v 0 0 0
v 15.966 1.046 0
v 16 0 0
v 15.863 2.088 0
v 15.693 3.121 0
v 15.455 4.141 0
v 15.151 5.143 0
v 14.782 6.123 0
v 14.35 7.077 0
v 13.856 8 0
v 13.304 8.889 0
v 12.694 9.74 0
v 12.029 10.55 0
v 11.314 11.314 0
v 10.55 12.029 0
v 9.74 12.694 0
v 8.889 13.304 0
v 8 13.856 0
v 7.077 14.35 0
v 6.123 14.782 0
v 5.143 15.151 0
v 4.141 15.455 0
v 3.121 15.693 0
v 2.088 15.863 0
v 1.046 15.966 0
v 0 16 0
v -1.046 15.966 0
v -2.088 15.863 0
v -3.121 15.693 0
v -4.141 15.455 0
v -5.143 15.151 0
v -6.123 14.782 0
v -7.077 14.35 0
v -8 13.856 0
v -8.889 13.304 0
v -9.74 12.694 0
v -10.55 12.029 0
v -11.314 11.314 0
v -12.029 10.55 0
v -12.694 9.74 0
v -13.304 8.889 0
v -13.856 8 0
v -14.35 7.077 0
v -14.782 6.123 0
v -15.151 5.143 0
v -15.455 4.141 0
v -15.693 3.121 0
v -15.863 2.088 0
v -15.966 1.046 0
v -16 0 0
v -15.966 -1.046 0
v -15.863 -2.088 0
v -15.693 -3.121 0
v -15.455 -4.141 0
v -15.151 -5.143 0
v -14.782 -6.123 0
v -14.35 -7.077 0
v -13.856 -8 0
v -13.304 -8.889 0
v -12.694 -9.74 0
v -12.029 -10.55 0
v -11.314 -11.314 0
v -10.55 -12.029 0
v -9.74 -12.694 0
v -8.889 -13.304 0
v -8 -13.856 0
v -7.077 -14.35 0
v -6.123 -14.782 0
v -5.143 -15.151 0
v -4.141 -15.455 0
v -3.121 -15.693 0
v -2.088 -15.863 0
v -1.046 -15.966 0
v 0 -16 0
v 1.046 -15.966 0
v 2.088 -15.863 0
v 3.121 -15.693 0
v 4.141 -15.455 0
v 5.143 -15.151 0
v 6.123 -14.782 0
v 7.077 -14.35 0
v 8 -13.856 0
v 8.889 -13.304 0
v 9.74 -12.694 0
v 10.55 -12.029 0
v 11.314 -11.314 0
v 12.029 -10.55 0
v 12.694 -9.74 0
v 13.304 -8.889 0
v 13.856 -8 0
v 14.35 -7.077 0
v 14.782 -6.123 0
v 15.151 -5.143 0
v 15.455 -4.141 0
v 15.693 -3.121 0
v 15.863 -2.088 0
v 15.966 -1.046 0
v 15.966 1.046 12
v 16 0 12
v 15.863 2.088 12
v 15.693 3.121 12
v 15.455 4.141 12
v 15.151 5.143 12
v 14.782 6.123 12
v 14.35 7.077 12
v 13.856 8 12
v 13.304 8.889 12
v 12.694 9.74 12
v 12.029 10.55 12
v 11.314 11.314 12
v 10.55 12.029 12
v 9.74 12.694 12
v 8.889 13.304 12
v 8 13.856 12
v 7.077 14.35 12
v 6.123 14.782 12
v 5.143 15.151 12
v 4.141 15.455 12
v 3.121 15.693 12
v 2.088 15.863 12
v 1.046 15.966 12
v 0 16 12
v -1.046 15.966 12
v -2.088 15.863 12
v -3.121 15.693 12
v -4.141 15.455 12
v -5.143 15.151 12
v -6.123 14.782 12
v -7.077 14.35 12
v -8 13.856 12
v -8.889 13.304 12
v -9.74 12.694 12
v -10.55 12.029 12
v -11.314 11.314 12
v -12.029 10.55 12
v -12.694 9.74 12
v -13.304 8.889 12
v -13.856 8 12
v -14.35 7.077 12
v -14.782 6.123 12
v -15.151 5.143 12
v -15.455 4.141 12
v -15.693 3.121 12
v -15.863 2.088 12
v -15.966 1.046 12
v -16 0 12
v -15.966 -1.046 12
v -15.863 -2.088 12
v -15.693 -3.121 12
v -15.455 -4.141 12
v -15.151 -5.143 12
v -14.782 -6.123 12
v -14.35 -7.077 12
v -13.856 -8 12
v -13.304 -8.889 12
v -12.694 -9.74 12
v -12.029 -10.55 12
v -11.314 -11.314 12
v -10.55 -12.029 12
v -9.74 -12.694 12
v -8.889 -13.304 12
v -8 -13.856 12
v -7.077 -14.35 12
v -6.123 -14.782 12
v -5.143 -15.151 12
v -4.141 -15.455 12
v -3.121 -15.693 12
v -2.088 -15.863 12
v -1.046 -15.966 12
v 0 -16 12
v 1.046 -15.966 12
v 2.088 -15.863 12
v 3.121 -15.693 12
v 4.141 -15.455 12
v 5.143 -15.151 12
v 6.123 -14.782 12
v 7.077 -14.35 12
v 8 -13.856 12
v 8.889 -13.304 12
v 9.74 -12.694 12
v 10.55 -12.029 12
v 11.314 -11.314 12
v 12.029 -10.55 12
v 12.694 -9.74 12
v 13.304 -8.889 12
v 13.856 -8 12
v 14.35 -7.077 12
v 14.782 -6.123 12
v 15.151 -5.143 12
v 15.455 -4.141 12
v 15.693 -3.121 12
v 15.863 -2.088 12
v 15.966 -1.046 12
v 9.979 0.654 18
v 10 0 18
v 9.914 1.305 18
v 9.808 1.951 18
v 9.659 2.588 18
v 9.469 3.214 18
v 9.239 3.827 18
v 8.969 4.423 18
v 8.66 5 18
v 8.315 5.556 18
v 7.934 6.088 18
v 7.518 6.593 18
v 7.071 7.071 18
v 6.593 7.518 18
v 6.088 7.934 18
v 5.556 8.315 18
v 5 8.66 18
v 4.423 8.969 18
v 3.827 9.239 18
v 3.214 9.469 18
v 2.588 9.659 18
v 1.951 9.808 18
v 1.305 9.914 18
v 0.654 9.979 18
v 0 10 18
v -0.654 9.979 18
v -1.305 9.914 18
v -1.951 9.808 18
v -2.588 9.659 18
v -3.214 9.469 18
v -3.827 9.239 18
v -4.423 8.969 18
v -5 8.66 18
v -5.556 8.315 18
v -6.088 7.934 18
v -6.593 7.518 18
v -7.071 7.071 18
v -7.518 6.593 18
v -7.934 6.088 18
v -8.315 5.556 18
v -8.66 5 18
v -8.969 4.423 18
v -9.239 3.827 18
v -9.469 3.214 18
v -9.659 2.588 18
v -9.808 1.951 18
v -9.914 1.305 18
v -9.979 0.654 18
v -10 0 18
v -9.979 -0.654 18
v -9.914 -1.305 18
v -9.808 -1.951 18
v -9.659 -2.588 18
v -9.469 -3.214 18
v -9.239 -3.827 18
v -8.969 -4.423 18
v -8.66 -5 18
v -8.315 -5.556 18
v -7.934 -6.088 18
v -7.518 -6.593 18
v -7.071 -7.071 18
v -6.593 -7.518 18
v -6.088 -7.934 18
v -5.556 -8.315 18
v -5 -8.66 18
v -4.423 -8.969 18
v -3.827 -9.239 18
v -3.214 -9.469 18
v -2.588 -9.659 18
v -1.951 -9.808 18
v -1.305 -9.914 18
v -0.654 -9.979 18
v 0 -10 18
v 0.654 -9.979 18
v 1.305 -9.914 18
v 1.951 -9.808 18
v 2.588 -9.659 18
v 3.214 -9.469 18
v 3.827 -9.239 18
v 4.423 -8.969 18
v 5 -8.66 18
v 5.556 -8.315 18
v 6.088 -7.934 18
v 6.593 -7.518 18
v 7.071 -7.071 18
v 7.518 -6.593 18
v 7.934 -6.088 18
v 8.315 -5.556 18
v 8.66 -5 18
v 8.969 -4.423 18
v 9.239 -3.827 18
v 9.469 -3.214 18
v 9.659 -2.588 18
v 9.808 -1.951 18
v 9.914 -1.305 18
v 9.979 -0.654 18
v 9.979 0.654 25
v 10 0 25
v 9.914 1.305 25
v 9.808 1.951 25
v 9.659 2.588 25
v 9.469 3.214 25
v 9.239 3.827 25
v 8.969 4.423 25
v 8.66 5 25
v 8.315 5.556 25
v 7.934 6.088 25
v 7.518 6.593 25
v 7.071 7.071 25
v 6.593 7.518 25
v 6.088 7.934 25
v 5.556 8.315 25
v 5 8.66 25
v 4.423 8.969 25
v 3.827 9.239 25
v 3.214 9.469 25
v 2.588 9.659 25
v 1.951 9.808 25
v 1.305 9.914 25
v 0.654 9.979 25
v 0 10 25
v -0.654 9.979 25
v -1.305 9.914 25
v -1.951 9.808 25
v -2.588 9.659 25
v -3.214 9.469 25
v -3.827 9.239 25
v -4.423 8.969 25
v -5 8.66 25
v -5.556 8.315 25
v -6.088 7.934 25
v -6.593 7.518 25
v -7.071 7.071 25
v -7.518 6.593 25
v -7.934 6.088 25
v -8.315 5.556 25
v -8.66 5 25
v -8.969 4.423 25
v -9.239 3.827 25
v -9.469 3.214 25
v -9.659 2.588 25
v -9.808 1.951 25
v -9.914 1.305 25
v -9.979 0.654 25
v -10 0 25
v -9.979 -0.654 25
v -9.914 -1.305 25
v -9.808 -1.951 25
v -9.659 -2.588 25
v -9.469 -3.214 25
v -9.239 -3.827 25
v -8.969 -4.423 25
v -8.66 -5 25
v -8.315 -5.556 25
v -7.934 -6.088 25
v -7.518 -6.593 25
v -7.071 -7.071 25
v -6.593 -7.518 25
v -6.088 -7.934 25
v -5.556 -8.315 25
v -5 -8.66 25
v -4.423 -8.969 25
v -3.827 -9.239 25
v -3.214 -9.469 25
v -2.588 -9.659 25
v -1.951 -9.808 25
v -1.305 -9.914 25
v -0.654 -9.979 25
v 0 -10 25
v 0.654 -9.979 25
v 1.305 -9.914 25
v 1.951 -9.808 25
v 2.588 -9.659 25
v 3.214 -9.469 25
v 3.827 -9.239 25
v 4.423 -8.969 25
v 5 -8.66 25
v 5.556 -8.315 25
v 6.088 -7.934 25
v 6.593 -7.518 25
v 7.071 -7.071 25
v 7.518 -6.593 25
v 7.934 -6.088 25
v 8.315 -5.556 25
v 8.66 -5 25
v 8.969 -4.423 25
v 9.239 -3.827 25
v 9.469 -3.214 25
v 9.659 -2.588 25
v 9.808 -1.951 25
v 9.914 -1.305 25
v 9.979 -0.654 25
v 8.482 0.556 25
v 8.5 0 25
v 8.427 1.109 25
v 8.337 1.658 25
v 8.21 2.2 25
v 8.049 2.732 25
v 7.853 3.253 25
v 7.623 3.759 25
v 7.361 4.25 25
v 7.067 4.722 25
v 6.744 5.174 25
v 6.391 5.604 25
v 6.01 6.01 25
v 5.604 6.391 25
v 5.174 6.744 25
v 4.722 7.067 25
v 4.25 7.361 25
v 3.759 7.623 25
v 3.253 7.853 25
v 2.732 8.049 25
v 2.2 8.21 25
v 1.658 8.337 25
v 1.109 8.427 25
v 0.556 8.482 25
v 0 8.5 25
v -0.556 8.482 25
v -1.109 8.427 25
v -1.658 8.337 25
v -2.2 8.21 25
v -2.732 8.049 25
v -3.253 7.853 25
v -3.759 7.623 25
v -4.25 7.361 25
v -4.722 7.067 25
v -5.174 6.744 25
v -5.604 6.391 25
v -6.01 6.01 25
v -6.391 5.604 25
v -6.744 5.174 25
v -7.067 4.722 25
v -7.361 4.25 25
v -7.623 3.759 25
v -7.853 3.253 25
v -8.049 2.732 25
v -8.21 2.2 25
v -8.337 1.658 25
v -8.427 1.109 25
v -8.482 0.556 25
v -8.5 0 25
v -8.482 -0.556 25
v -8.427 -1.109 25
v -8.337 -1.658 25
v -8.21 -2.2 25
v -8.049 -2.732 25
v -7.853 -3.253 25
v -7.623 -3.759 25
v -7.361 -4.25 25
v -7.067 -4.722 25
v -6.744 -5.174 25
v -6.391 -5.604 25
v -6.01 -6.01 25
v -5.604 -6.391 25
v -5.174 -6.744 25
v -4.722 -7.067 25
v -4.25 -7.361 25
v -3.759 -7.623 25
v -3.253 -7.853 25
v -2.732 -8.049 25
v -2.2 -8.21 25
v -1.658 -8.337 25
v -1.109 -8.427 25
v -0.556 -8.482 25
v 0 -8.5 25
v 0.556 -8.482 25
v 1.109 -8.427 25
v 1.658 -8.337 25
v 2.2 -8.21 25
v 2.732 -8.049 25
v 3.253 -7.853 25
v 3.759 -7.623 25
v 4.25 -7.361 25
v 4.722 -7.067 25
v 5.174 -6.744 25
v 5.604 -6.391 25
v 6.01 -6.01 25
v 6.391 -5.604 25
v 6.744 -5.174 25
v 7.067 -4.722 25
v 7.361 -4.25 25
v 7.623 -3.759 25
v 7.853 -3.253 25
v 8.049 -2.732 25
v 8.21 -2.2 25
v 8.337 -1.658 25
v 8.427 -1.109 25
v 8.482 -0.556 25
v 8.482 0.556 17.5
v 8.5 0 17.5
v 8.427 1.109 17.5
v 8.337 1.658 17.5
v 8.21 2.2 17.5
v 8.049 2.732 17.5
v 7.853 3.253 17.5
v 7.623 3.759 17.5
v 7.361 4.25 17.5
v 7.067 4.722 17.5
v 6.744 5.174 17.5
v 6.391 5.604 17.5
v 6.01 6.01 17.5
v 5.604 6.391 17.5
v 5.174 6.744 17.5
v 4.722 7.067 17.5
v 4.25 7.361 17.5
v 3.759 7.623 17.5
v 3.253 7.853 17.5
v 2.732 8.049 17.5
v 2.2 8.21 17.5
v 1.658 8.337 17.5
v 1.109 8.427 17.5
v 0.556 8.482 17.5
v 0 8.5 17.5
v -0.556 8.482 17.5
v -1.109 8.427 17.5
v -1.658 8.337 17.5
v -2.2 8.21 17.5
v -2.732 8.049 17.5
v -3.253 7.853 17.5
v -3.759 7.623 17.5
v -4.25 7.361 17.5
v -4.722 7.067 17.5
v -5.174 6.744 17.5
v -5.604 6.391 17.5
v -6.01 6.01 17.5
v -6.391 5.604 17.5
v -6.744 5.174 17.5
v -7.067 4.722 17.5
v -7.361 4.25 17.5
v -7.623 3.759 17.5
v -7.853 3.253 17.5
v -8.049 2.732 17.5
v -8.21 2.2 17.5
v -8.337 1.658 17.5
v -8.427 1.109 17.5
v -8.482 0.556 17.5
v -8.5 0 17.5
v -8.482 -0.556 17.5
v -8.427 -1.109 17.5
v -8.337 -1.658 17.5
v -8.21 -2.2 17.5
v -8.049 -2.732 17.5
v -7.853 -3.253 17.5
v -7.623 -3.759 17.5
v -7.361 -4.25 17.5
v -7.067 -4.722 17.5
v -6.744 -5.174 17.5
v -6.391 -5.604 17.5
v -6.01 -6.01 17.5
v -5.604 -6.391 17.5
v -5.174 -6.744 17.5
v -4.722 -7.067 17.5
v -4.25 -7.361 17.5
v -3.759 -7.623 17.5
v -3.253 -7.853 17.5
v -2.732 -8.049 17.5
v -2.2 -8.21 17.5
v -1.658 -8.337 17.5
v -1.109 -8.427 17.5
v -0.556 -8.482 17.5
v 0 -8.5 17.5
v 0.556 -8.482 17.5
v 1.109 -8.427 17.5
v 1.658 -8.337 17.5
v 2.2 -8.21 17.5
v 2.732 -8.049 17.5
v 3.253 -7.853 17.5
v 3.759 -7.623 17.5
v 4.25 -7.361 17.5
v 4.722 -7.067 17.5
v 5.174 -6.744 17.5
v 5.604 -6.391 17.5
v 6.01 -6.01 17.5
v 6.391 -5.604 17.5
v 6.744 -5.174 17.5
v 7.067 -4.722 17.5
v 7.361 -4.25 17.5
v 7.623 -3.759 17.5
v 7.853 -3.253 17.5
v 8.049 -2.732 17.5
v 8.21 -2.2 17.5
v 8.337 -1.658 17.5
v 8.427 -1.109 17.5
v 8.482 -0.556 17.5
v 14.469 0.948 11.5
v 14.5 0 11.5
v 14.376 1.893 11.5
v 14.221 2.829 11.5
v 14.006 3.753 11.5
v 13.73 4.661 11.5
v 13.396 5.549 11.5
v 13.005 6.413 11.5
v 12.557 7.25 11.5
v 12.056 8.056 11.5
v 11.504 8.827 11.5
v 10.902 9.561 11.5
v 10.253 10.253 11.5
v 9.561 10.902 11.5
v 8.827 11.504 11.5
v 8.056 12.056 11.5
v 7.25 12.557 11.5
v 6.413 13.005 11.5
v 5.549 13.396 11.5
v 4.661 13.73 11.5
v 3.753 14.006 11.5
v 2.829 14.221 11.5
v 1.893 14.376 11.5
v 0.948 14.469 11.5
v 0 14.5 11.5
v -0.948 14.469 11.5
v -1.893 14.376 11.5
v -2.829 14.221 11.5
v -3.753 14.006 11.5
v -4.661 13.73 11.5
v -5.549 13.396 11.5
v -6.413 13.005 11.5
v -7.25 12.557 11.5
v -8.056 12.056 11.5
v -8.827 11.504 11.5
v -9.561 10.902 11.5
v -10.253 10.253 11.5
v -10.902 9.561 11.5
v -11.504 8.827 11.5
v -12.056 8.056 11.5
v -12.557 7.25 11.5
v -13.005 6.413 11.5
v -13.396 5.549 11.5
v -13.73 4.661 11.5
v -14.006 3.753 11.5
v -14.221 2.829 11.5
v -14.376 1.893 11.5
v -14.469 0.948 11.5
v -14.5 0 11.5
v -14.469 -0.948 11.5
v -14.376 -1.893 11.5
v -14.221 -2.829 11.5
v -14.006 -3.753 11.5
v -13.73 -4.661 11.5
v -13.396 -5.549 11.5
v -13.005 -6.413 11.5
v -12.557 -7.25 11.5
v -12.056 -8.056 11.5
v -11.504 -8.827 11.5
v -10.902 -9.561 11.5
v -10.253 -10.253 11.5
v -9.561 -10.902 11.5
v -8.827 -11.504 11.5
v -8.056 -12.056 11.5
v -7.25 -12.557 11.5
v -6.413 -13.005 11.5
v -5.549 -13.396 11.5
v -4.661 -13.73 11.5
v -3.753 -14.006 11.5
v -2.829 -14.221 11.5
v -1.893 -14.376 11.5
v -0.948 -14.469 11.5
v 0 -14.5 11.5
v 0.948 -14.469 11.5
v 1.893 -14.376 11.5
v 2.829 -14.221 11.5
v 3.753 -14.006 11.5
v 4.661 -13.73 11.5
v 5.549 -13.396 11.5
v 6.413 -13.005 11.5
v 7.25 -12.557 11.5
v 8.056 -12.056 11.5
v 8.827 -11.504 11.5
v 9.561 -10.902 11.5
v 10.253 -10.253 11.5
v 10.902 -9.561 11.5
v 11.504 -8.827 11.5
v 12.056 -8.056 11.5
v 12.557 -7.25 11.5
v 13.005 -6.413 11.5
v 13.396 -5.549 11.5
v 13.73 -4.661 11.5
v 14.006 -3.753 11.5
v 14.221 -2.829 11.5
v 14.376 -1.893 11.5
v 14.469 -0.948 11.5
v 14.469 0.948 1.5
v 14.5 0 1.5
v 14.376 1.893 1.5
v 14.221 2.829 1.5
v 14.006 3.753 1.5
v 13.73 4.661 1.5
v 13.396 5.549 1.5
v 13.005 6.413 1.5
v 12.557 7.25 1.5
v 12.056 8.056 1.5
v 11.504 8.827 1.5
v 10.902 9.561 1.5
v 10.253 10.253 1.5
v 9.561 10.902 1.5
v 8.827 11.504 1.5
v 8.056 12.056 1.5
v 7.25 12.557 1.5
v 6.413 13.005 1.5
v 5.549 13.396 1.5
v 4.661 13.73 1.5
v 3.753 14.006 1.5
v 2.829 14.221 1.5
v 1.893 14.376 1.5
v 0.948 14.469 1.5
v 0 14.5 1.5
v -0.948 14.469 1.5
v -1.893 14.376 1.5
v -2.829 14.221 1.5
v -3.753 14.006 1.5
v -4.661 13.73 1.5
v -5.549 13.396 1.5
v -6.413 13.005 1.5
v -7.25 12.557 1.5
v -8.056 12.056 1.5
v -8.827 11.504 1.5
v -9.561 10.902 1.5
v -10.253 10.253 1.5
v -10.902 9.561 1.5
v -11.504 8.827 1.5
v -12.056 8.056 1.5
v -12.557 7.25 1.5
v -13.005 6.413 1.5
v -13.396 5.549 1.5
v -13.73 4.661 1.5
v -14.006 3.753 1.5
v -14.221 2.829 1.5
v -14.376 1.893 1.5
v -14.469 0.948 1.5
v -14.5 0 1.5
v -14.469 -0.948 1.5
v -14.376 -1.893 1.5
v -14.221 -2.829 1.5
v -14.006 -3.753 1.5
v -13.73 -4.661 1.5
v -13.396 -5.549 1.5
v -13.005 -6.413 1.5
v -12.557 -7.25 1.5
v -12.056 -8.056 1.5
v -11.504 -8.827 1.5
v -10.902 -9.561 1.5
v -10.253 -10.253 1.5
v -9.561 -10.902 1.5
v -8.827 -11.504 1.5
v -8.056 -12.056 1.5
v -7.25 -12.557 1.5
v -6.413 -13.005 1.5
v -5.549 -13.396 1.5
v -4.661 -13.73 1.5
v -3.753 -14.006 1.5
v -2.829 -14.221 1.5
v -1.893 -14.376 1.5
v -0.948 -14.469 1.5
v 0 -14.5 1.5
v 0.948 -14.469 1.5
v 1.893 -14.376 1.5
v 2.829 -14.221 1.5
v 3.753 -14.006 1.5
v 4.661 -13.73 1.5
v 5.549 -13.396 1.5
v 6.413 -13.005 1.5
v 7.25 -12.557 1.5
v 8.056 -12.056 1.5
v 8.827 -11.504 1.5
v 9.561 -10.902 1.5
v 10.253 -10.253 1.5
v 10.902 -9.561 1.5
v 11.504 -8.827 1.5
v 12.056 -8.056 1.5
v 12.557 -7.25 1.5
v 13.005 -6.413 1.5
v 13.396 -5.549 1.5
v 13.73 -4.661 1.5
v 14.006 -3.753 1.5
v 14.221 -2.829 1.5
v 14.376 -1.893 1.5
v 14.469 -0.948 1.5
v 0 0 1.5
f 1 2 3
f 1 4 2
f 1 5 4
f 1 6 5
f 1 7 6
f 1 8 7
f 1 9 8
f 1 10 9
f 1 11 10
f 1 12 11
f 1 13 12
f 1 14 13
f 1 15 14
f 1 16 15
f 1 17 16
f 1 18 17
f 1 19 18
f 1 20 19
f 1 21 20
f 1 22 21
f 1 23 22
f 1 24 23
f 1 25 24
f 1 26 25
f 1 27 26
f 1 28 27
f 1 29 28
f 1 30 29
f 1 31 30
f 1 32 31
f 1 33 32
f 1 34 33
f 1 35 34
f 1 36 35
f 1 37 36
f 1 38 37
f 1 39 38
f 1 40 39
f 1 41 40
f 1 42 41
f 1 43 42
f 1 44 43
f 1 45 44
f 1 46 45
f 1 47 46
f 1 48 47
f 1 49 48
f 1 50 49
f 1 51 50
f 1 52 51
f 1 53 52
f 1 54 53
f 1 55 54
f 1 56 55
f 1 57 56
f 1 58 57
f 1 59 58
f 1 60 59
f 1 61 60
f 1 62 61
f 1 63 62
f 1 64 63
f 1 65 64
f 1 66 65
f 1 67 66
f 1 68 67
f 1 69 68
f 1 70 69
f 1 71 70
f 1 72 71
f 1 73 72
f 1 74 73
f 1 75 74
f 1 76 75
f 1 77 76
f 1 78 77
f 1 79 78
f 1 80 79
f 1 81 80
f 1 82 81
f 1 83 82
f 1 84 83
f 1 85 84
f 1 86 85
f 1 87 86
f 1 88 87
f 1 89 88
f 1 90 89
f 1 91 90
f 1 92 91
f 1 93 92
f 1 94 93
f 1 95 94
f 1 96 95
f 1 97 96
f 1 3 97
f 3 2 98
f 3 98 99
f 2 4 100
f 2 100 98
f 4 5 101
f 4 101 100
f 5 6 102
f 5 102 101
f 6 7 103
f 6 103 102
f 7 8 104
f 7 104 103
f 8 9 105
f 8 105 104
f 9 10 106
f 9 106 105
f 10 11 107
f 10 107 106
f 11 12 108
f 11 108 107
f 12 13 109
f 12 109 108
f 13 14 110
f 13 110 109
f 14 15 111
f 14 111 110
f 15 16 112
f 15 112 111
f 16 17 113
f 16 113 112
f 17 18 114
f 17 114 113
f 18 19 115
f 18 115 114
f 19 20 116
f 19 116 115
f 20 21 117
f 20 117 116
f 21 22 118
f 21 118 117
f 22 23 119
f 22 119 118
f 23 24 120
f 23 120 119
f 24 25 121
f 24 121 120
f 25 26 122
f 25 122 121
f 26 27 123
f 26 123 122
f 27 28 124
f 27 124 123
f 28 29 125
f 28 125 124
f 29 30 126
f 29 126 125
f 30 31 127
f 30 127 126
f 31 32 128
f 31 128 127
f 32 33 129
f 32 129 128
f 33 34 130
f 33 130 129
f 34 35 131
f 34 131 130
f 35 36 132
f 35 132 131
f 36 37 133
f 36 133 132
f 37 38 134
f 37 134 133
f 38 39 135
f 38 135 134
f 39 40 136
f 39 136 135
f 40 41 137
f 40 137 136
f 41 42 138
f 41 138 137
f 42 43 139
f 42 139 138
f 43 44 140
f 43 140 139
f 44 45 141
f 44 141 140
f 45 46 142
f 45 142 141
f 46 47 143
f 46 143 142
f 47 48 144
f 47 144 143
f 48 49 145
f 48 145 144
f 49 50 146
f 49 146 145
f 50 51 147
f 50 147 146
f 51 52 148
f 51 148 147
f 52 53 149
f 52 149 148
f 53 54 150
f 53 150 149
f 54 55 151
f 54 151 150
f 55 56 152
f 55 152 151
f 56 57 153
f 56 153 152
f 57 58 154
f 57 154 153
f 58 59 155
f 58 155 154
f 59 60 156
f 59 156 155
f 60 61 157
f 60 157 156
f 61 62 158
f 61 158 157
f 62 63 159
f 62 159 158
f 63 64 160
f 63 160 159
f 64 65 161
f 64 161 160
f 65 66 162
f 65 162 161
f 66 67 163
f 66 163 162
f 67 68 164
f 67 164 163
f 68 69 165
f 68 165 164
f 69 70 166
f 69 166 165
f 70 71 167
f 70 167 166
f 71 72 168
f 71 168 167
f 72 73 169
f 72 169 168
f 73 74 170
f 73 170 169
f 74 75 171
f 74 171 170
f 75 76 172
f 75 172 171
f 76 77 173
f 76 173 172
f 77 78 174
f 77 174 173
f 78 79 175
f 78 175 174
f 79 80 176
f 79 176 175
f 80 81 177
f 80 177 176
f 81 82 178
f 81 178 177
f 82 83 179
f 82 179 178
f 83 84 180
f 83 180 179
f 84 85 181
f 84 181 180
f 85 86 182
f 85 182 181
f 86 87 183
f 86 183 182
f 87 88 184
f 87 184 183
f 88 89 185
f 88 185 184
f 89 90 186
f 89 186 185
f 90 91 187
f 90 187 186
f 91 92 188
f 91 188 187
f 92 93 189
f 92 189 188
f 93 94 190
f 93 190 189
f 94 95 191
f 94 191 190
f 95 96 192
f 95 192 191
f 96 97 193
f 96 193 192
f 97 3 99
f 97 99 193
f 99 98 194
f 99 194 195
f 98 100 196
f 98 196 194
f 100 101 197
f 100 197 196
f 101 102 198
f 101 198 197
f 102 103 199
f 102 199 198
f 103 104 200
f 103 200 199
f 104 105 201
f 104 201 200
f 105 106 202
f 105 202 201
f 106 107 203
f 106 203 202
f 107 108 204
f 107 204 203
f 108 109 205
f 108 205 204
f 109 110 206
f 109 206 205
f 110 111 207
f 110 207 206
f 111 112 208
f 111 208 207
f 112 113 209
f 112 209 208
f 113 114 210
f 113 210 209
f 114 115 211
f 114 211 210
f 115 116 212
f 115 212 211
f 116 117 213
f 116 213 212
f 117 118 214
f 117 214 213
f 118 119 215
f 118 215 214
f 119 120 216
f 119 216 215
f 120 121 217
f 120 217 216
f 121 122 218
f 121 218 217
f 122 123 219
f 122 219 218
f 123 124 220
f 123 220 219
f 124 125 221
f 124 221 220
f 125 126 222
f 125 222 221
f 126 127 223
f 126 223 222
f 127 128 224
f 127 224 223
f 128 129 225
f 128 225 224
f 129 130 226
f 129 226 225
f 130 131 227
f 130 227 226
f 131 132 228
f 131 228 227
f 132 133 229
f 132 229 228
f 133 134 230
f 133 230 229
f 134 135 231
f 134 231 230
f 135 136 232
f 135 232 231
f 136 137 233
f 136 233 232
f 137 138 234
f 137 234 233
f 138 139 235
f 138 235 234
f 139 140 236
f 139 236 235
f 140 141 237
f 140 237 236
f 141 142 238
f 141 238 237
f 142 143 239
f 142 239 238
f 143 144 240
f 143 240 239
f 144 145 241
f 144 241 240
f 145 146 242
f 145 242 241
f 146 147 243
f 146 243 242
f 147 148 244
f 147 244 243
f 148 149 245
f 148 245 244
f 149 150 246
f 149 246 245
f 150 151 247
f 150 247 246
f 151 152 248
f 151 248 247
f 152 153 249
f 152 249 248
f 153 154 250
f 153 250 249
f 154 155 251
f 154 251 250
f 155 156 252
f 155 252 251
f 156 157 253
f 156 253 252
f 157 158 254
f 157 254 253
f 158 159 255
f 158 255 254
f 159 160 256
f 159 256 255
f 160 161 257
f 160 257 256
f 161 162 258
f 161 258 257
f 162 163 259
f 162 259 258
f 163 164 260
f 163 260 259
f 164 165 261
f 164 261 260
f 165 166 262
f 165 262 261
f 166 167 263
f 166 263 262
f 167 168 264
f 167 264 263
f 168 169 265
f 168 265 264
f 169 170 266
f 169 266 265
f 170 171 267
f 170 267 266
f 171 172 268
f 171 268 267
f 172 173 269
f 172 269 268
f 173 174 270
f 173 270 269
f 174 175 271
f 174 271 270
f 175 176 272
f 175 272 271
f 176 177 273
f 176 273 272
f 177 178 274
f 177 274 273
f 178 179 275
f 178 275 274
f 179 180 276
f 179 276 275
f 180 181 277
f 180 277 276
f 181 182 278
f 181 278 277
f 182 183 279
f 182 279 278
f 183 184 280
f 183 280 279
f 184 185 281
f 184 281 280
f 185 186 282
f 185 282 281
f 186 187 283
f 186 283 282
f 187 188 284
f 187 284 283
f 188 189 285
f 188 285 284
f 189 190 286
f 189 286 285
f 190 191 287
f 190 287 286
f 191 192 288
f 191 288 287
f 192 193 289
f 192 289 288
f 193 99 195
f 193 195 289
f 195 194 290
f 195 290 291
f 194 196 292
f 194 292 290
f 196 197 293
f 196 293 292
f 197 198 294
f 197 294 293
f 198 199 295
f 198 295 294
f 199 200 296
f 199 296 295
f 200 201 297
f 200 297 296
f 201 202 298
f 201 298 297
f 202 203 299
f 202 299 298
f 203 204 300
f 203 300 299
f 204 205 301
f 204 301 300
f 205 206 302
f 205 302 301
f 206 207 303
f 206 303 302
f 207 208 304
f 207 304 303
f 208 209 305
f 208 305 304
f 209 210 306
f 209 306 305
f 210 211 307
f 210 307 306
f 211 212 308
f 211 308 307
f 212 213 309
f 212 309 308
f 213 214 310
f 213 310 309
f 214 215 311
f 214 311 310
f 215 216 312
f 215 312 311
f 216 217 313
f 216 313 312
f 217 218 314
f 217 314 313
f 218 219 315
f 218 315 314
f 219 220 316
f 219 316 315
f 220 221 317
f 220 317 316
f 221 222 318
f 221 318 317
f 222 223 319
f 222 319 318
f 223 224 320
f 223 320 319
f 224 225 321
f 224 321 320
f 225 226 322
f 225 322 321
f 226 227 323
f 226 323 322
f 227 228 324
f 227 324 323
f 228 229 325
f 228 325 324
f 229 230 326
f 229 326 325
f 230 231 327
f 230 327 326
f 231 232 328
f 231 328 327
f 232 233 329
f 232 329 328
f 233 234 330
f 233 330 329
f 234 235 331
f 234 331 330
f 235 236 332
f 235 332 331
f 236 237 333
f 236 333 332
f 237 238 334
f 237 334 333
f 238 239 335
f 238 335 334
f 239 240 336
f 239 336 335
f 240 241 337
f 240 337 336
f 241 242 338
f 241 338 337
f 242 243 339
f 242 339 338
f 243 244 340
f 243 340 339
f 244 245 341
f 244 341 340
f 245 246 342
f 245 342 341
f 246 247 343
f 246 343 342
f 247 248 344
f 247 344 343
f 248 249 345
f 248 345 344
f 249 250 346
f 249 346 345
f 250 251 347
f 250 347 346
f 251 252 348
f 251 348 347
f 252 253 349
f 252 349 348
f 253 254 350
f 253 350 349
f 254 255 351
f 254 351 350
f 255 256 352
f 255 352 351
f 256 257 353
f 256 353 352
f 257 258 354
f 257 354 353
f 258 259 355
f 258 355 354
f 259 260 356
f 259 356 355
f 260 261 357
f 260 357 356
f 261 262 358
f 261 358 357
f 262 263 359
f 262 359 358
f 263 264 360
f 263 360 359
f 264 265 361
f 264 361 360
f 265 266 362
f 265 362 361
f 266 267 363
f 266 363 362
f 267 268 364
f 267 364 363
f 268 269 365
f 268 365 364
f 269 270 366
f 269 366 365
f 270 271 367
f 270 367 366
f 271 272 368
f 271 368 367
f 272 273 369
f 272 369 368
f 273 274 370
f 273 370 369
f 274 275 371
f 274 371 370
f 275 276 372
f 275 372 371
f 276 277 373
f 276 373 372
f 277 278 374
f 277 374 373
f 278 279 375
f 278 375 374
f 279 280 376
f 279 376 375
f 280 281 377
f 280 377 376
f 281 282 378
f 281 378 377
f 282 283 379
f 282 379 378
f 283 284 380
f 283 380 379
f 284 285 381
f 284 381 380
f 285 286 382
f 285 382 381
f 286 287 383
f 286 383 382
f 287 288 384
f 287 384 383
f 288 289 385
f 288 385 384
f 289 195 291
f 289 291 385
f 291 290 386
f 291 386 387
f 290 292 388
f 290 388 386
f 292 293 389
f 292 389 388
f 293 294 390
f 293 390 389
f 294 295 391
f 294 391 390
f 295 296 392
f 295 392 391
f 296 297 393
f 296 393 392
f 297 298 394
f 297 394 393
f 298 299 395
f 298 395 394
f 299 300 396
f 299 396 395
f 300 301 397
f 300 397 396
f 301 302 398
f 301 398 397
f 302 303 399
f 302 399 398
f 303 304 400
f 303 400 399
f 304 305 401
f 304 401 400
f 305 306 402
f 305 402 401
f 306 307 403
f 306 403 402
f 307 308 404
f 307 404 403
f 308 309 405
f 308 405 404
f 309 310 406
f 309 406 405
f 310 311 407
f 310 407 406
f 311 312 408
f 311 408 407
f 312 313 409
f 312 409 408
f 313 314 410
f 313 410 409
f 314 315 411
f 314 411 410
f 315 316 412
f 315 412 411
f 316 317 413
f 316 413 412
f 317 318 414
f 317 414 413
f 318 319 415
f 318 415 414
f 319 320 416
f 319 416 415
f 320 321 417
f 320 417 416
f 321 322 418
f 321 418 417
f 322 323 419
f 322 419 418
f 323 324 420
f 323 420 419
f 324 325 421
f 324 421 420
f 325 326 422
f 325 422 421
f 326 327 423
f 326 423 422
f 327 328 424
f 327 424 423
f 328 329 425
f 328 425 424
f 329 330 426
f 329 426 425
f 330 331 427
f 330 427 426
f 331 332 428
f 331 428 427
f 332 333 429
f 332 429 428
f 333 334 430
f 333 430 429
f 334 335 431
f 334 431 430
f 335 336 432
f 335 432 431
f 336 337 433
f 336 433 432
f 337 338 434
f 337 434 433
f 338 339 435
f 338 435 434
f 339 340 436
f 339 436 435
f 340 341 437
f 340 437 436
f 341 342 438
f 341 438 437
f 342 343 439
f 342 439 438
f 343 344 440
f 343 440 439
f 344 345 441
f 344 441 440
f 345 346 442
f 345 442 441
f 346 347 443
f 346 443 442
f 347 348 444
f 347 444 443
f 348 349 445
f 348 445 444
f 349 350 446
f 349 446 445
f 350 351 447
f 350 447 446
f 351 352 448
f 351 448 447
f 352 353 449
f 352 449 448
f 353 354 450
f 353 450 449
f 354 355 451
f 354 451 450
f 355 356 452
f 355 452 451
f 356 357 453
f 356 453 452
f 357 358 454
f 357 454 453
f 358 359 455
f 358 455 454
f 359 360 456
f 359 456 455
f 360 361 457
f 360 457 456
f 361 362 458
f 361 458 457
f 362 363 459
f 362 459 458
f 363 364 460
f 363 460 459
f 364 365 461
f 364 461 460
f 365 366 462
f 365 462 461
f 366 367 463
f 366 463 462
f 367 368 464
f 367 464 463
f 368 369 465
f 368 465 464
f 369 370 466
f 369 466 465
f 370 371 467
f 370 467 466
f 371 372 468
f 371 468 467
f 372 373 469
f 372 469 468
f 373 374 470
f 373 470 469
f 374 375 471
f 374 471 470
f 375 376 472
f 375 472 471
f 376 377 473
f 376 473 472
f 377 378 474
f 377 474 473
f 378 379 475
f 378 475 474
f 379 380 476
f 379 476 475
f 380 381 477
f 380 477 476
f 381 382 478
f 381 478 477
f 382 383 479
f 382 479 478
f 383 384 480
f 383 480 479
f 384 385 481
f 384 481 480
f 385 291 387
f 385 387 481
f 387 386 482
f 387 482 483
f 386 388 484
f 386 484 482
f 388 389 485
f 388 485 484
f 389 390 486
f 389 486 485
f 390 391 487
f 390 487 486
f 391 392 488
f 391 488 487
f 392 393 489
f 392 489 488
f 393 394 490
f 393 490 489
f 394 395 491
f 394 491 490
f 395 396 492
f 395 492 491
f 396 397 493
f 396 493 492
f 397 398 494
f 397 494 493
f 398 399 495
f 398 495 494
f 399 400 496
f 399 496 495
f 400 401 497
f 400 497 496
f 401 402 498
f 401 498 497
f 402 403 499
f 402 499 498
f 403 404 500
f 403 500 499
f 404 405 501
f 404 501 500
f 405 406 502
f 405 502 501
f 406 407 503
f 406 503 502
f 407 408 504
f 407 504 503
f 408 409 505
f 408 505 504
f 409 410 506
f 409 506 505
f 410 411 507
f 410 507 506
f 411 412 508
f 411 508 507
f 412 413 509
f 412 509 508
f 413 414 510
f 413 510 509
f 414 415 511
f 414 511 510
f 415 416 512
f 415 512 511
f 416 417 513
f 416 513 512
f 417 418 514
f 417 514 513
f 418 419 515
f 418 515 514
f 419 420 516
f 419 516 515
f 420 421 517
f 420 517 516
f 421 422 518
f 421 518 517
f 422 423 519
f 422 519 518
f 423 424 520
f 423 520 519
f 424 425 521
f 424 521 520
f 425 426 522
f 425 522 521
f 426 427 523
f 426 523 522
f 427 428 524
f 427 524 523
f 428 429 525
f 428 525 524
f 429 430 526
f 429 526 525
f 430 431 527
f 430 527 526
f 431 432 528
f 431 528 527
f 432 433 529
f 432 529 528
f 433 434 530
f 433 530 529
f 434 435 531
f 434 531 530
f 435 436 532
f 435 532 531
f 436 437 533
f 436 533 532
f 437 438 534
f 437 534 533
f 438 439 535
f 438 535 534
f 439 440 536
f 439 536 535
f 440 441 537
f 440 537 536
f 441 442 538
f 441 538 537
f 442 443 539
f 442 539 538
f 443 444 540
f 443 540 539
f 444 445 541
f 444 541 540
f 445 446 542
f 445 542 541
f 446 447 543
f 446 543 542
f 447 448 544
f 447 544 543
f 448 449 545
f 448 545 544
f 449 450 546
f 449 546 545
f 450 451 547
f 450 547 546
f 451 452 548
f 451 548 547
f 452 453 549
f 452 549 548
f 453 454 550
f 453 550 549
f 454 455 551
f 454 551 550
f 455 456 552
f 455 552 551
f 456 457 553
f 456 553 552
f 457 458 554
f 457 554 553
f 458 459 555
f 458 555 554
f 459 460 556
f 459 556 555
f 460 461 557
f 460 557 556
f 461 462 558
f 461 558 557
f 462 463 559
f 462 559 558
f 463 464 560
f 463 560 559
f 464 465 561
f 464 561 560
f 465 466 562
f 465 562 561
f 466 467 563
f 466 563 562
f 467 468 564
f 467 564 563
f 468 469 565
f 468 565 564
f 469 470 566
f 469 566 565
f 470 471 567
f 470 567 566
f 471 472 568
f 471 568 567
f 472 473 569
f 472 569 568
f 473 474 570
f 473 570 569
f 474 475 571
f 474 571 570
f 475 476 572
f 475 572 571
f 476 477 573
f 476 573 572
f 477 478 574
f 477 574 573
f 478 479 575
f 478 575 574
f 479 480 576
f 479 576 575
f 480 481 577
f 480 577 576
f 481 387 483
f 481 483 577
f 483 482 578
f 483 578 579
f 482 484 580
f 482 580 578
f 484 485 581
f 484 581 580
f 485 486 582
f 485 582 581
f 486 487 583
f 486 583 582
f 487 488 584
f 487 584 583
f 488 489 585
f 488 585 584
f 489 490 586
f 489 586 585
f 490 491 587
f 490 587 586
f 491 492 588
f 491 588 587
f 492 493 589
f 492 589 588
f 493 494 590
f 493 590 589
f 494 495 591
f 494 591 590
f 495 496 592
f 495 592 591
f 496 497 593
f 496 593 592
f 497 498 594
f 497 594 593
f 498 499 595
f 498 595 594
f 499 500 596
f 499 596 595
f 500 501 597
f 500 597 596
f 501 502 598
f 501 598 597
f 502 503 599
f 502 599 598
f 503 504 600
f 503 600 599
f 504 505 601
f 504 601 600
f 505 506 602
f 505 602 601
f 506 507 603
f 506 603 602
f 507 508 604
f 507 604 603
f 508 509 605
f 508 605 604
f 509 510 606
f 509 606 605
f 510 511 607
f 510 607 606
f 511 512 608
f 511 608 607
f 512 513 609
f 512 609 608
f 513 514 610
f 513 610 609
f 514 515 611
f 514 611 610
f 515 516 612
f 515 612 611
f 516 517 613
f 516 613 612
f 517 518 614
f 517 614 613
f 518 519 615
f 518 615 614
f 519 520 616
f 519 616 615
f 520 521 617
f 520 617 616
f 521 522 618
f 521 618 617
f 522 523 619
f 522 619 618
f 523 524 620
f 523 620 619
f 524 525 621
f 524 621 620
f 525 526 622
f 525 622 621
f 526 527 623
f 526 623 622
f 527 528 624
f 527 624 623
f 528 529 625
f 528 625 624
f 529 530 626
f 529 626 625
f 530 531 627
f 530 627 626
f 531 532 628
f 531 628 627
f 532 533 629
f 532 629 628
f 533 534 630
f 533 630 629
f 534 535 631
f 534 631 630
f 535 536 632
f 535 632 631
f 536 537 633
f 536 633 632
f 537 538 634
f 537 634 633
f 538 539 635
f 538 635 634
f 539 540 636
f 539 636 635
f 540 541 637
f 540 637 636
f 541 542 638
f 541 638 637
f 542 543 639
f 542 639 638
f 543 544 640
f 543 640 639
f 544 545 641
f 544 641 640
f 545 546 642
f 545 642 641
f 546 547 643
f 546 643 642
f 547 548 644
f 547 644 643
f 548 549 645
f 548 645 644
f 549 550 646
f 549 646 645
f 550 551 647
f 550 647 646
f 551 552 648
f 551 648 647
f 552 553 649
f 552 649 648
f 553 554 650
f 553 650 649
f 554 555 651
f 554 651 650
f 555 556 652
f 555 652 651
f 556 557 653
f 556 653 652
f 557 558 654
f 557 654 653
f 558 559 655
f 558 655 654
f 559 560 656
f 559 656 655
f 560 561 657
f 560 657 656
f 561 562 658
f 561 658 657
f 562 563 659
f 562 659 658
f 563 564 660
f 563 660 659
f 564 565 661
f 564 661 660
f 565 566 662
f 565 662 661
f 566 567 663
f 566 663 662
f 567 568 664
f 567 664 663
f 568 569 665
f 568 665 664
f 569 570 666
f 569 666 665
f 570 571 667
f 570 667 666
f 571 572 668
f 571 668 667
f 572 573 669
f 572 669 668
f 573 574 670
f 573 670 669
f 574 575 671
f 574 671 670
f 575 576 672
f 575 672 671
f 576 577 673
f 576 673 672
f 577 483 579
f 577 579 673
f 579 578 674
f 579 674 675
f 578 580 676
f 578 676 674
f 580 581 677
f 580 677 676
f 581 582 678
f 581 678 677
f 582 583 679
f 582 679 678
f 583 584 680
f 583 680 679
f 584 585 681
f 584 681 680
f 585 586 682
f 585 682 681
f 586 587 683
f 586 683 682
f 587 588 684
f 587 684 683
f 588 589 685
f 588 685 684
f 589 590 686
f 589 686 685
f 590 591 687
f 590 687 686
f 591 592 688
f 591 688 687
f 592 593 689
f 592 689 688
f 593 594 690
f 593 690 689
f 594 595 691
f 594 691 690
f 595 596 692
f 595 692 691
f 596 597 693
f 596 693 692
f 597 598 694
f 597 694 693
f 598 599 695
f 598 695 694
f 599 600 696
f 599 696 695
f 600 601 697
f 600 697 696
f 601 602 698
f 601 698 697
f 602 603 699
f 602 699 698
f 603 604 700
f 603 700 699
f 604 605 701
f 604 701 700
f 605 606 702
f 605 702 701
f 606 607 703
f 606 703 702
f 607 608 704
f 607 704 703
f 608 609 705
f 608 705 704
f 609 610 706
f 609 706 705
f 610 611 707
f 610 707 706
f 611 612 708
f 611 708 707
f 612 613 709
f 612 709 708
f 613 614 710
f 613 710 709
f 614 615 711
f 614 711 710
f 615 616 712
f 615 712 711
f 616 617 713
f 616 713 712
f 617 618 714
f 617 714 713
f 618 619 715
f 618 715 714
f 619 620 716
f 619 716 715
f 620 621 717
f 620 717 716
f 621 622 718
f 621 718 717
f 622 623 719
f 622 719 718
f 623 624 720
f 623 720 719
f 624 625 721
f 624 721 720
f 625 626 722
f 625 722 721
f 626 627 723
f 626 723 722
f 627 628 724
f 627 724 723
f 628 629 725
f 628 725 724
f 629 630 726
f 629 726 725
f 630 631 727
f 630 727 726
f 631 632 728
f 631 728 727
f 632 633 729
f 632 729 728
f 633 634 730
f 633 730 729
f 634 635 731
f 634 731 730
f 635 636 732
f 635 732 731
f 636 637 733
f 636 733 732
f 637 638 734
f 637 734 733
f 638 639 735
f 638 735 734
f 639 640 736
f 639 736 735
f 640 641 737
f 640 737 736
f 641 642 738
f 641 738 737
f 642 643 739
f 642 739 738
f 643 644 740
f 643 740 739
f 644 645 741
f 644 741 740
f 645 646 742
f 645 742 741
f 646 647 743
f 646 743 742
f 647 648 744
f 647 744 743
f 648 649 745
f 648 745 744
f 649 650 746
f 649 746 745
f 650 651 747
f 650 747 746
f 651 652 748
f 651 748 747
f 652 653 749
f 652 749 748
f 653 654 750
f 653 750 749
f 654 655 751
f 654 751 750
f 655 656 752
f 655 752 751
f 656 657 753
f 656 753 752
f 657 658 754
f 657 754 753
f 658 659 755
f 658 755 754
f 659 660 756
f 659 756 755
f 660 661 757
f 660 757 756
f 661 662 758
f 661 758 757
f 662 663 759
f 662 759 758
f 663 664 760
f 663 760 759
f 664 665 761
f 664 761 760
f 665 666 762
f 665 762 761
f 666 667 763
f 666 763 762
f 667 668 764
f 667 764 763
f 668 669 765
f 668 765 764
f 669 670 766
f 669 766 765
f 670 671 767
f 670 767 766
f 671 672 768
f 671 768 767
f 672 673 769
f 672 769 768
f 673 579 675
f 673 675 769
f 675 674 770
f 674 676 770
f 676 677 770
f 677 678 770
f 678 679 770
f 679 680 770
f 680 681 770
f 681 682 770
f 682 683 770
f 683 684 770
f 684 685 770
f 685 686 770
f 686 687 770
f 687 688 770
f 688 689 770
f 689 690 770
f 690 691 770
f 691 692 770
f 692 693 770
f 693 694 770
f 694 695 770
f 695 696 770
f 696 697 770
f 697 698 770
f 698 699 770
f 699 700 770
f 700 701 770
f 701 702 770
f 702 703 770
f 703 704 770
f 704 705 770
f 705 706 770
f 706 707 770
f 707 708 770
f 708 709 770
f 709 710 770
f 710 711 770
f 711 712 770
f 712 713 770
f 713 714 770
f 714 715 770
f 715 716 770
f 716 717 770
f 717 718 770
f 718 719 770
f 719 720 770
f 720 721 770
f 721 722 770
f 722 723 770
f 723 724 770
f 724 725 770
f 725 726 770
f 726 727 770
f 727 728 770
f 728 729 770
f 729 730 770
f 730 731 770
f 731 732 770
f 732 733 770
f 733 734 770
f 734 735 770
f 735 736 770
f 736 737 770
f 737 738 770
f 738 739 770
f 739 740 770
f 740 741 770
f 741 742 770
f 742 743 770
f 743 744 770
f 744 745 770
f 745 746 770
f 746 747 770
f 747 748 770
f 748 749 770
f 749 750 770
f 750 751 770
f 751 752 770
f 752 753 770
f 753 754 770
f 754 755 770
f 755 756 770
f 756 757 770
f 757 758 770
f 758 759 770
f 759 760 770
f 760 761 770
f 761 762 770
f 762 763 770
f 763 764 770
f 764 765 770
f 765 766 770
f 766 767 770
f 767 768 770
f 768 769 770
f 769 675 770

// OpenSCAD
// Original MechIntel educational model. CC0-1.0. Units: mm.
// Not a standardized or load-rated component.
$fn=96;
// Section points: [radius, height], mm. Edit to change the profile.
section=[[0, 0], [16, 0], [16, 12], [10, 18], [10, 25], [8.5, 25], [8.5, 17.5], [14.5, 11.5], [14.5, 1.5], [0, 1.5]];
rotate_extrude($fn=96) polygon(points=section);
